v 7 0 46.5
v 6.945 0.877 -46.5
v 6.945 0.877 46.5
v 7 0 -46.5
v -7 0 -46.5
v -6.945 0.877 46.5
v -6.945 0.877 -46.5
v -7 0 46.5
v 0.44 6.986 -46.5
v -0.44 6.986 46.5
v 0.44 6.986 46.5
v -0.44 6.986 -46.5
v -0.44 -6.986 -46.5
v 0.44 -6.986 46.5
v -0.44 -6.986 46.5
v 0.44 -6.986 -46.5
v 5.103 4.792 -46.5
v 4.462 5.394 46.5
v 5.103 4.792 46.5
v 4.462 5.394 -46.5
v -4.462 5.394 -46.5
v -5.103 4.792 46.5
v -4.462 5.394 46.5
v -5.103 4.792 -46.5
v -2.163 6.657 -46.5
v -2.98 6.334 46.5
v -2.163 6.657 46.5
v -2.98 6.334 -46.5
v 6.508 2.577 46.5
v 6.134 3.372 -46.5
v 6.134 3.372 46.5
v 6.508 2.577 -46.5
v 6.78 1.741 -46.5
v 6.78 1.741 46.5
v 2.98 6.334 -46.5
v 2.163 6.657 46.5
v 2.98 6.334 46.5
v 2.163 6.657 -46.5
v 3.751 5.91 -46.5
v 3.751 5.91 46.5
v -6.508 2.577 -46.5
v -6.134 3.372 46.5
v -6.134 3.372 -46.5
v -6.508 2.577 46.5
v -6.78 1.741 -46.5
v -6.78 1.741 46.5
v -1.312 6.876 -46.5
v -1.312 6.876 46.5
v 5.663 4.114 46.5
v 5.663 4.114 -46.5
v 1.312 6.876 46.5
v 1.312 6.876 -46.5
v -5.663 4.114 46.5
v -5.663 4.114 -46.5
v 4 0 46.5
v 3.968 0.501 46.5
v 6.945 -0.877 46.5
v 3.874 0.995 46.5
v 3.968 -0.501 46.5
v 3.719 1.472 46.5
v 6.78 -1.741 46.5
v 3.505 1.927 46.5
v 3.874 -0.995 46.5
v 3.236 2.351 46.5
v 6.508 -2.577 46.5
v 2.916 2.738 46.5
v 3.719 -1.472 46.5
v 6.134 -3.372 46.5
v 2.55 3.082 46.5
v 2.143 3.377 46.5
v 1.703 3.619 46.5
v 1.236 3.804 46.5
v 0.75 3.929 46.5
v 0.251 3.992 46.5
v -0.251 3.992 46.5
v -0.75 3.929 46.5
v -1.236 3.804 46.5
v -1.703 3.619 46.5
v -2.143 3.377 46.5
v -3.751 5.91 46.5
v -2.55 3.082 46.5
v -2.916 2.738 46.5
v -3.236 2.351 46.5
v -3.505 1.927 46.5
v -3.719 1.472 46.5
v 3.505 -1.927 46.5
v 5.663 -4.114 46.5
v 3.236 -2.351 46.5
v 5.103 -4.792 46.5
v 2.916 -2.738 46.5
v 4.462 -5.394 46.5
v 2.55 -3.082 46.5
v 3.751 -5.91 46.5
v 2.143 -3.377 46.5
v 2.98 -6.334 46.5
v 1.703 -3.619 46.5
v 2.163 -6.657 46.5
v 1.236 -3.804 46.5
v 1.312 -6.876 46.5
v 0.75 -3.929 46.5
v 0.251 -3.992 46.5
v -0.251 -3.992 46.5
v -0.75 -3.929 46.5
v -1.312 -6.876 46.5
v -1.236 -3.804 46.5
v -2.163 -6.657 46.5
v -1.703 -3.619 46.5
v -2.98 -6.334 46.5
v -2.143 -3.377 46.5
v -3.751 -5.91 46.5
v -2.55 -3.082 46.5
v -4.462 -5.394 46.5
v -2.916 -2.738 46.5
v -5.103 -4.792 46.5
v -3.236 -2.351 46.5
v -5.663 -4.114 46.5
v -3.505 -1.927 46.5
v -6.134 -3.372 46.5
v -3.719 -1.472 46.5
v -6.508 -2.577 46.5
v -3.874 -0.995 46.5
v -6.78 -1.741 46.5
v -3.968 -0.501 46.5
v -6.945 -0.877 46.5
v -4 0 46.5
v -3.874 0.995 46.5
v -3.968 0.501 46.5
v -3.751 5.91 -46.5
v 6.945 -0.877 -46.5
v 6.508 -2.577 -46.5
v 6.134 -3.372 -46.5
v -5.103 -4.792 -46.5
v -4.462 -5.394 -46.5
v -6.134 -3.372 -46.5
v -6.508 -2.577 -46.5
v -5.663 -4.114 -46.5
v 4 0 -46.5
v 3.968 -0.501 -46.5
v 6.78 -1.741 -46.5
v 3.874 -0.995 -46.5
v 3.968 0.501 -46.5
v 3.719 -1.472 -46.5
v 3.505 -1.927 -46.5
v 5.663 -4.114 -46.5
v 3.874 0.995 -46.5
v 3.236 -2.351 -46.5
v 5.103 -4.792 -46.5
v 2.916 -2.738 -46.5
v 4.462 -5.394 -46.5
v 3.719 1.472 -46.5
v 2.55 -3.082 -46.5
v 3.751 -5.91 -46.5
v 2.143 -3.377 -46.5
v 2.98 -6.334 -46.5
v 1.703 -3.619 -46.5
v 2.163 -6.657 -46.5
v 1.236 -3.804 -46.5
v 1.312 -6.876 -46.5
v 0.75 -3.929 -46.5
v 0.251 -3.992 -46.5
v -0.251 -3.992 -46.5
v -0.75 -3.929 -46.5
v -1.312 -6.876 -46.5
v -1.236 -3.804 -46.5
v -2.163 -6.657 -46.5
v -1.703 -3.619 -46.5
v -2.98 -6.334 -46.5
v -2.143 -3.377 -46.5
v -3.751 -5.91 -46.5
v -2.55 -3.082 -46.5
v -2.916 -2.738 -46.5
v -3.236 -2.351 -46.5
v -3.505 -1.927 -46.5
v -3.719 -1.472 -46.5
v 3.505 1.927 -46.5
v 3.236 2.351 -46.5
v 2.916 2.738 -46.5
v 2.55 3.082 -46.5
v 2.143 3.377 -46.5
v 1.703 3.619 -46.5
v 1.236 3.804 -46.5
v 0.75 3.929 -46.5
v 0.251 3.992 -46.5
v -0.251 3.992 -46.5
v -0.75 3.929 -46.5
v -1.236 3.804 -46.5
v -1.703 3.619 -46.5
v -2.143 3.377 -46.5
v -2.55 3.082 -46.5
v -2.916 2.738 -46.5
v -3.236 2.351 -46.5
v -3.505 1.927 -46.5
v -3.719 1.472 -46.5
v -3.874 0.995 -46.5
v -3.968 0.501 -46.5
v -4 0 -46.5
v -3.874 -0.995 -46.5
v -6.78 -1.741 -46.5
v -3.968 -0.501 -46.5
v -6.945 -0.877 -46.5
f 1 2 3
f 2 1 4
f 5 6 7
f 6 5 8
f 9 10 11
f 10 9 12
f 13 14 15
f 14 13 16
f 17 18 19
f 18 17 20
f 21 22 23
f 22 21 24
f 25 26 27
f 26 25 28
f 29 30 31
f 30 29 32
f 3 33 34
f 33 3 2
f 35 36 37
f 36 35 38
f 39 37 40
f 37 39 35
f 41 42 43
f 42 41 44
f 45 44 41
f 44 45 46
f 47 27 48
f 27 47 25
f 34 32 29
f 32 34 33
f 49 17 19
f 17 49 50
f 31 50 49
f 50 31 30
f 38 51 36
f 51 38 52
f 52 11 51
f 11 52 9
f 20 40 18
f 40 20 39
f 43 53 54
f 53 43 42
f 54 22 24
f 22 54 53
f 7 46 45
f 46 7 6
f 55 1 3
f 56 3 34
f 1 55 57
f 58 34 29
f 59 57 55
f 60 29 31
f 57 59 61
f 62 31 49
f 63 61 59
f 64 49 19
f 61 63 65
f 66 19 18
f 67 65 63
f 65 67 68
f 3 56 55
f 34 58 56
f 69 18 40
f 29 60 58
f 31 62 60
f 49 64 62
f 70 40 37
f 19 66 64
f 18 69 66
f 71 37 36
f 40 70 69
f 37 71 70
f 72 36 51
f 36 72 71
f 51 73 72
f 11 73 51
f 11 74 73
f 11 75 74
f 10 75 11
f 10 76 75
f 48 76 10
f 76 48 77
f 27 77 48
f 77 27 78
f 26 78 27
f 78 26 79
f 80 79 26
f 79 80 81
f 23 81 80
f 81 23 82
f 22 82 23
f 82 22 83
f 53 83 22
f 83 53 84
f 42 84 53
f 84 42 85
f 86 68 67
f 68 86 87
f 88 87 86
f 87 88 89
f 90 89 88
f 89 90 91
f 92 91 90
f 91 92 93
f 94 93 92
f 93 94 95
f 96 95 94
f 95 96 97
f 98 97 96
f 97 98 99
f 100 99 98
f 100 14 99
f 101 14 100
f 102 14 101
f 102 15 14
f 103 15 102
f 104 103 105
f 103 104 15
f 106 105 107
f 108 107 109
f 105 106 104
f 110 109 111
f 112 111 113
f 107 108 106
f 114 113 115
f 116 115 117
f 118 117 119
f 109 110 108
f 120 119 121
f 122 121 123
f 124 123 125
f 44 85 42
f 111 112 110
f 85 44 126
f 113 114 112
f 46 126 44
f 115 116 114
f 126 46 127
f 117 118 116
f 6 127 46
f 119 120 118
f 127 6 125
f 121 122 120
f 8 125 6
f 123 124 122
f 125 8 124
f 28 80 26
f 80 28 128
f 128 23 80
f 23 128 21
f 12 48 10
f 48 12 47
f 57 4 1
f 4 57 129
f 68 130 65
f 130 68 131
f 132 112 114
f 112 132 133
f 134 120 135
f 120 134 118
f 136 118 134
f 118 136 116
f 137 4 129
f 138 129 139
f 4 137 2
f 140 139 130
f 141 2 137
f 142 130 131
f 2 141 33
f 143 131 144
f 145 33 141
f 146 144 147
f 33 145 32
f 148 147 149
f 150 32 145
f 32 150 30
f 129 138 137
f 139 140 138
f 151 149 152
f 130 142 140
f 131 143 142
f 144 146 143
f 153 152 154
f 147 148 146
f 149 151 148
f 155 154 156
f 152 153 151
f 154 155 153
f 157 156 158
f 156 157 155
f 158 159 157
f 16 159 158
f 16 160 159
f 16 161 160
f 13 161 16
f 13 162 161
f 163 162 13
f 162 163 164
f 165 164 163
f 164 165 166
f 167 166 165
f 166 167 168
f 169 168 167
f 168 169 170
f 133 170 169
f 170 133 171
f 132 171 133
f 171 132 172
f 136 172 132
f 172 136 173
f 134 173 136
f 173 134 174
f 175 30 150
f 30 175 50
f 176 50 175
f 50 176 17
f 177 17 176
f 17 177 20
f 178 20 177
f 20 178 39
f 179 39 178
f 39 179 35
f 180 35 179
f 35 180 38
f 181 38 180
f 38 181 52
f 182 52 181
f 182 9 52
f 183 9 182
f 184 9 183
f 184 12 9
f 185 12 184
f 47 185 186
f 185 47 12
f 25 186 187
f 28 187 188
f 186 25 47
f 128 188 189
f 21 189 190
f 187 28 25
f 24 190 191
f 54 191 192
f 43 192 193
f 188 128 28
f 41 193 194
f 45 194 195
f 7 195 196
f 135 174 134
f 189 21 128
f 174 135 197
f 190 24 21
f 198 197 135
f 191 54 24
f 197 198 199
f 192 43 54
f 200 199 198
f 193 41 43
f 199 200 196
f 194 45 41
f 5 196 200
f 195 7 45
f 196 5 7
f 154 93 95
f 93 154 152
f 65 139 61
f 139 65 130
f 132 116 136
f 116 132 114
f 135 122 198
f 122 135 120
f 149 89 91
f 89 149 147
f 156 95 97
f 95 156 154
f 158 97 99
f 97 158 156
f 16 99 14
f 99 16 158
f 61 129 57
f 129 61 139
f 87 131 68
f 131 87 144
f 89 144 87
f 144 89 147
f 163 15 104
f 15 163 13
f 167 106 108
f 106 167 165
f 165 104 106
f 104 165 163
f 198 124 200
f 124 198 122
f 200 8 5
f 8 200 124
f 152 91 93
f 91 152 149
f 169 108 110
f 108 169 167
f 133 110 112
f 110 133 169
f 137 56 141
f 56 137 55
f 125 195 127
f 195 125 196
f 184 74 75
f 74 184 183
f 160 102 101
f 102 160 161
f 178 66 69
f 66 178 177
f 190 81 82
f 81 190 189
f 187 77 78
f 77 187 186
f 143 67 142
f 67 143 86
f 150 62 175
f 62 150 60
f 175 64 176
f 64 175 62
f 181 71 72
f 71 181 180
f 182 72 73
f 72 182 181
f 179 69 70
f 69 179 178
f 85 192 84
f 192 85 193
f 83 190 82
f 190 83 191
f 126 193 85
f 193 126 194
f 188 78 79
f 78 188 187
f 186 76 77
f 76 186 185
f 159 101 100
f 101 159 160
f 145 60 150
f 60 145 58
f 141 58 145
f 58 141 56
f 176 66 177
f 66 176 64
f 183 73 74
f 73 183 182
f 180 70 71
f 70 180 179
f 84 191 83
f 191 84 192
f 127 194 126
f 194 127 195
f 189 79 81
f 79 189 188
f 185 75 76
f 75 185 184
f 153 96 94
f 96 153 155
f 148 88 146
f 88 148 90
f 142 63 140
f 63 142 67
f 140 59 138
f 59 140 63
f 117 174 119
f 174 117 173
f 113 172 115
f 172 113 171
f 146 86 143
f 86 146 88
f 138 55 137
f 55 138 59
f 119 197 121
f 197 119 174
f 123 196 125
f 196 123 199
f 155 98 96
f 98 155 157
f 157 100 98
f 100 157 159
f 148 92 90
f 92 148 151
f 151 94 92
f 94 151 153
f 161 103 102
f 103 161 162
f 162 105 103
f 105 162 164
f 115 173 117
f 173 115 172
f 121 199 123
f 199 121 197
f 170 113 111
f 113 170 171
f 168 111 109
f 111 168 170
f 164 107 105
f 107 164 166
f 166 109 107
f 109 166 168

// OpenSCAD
$fn = 50;


difference() {
	union() {
		translate(v = [0, 0, -46.5000000000]) {
			cylinder(h = 93, r = 7.0000000000);
		}
	}
	union() {
		translate(v = [0, 0, -100.0000000000]) {
			cylinder(h = 200, r = 4);
		}
	}
}
